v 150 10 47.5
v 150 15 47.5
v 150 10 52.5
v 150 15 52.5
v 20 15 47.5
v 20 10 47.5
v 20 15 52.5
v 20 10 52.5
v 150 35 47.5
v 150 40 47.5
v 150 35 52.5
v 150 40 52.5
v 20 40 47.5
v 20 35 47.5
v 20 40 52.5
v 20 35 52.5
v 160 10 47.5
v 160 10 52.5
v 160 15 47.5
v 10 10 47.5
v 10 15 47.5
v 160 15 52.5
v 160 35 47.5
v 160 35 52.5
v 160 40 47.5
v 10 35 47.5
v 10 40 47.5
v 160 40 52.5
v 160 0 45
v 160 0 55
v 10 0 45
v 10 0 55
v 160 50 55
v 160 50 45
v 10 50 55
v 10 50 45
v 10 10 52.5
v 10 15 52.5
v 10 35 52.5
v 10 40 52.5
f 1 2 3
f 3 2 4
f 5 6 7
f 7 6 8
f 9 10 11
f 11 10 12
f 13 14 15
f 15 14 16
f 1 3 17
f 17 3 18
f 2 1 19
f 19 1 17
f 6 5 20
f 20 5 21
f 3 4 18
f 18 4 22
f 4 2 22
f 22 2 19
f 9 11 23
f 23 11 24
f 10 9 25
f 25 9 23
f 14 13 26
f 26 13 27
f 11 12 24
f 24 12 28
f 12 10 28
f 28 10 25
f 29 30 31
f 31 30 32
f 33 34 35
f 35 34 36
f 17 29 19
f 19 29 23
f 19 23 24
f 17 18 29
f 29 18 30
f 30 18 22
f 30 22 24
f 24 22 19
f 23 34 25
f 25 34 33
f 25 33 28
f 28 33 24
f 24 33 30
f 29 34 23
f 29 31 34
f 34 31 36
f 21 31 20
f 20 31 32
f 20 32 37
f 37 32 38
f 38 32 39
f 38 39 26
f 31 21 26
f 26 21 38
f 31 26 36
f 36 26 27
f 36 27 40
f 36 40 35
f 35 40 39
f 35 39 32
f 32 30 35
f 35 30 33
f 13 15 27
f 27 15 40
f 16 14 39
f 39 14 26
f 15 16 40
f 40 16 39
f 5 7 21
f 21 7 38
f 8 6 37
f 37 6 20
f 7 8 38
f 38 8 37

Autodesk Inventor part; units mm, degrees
ref_plane "YZ Plane" through (0, 0, 0) normal (1, 0, 0) x (0, 1, 0)
ref_plane "XZ Plane" through (0, 0, 0) normal (0, 1, 0) x (-1, 0, 0)
ref_plane "XY Plane" through (0, 0, 0) normal (0, 0, 1) x (1, 0, 0)
sketch "Sketch1" plane through (0, 0, 0) normal (0, 1, 0) x (-1, 0, 0)
  line L0 (-10, -55) -> (-160, -55)
  line L1 (-160, -55) -> (-160, -45)
  line L2 (-160, -45) -> (-10, -45)
  line L3 (-10, -45) -> (-10, -55)
  line L4 (10, -55) -> (80, -55)
  line L5 (80, -55) -> (80, -90)
  line L6 (80, -90) -> (110, -90)
  line L7 (110, -90) -> (110, -10)
  line L8 (110, -10) -> (80, -10)
  line L9 (80, -10) -> (80, -45)
  line L10 (80, -45) -> (10, -45)
  line L11 (10, -45) -> (10, -55)
  line L12 (0, -122.2654) -> (0, -189.4683)
  line L13 (-10, 55) -> (-10, 45)
  line L14 (10, 55) -> (10, 45)
  line L15 (80, 10) -> (110, 10)
  line L16 (10, 45) -> (80, 45)
  line L17 (80, 45) -> (80, 10)
  line L18 (80, 55) -> (10, 55)
  line L19 (80, 90) -> (80, 55)
  line L20 (110, 10) -> (110, 90)
  line L21 (110, 90) -> (80, 90)
  line L22 (-160, 55) -> (-10, 55)
  line L23 (-160, 45) -> (-160, 55)
  line L24 (-10, 45) -> (-160, 45)
  point P0 (0, 0)
  dimension "d0" = 10
  dimension "d1" = 80
  dimension "d2" = 10
  dimension "d4" = 30
  dimension "d5" = 30
  dimension "d6" = 35
  dimension "d7" = 35
  dimension "d8" = 45
  dimension "d9" = 10
  dimension "d10" = 10
  dimension "d11" = 150
  dimension "d12" = 100
  dimension "d13" = 0
  dimension "d16" = 100
extrude "Extrusion1" add sketch "Sketch1" along normal blind 50
sketch "Sketch2" plane through (160, 0, 55) normal (1, 0, 0) x (0, 0, -1)
  line L0 (2.5, 40) -> (7.5, 40)
  line L1 (7.5, 40) -> (7.5, 35)
  line L2 (7.5, 35) -> (2.5, 35)
  line L3 (2.5, 35) -> (2.5, 40)
  line L4 (0, 50) -> (10, 50) projected
  line L5 (10, 0) -> (10, 50) projected
  line L6 (2.5, 15) -> (7.5, 15)
  line L7 (7.5, 15) -> (7.5, 10)
  line L8 (7.5, 10) -> (2.5, 10)
  line L9 (2.5, 10) -> (2.5, 15)
  line L10 (102.5, 40) -> (107.5, 40)
  line L11 (107.5, 40) -> (107.5, 35)
  line L12 (107.5, 35) -> (102.5, 35)
  line L13 (102.5, 35) -> (102.5, 40)
  line L14 (102.5, 15) -> (107.5, 15)
  line L15 (107.5, 15) -> (107.5, 10)
  line L16 (107.5, 10) -> (102.5, 10)
  line L17 (102.5, 10) -> (102.5, 15)
  point P0 (55, 0)
  dimension "d23" = 10
  dimension "d24" = 5
  dimension "d25" = 2.5
  dimension "d26" = 5
  dimension "d29" = 25
  dimension "d32" = 100
extrude "Extrusion2" cut sketch "Sketch2" against normal blind 200
sketch "Sketch3" plane through (0, 50, 0) normal (0, 1, 0) x (1, 0, 0)
  line L0 (-105, -20) -> (-85, -20)
  line L1 (-85, -20) -> (-85, -30)
  line L2 (-85, -30) -> (-105, -30)
  line L3 (-105, -30) -> (-105, -20)
  line L4 (-110, -10) -> (-110, -90) projected
  line L5 (-105, -70) -> (-85, -70)
  line L6 (-85, -70) -> (-85, -80)
  line L7 (-85, -80) -> (-105, -80)
  line L8 (-105, -80) -> (-105, -70)
  line L9 (-105, 80) -> (-85, 80)
  line L10 (-85, 80) -> (-85, 70)
  line L11 (-85, 70) -> (-105, 70)
  line L12 (-105, 70) -> (-105, 80)
  line L13 (-105, 30) -> (-85, 30)
  line L14 (-85, 30) -> (-85, 20)
  line L15 (-85, 20) -> (-105, 20)
  line L16 (-105, 20) -> (-105, 30)
  point P0 (0, 0)
  dimension "d37" = 20
  dimension "d38" = 10
  dimension "d39" = 20
  dimension "d40" = 85
  dimension "d43" = 50
  dimension "d46" = 100
extrude "Extrusion3" add sketch "Sketch3" along normal blind 8
sketch "Sketch4" plane through (0, 0, 0) normal (0, -1, 0) x (1, 0, 0)
  line L0 (-105, -70) -> (-85, -70) projected
  line L1 (-85, -70) -> (-85, -80) projected
  line L2 (-85, -80) -> (-105, -80) projected
  line L3 (-105, -80) -> (-105, -70) projected
  line L4 (-105, -20) -> (-85, -20) projected
  line L5 (-85, -20) -> (-85, -30) projected
  line L6 (-85, -30) -> (-105, -30) projected
  line L7 (-105, -30) -> (-105, -20) projected
  line L8 (-105, 30) -> (-85, 30) projected
  line L9 (-85, 30) -> (-85, 20) projected
  line L10 (-85, 20) -> (-105, 20) projected
  line L11 (-105, 20) -> (-105, 30) projected
  line L12 (-105, 80) -> (-85, 80) projected
  line L13 (-85, 80) -> (-85, 70) projected
  line L14 (-85, 70) -> (-105, 70) projected
  line L15 (-105, 70) -> (-105, 80) projected
  line L16 (-85, 80) -> (-105, 80)
  line L17 (-105, 80) -> (-105, 70)
  line L18 (-105, 70) -> (-85, 70)
  line L19 (-85, 70) -> (-85, 80)
  line L20 (-85, 30) -> (-105, 30)
  line L21 (-105, 30) -> (-105, 20)
  line L22 (-105, 20) -> (-85, 20)
  line L23 (-85, 20) -> (-85, 30)
  line L24 (-85, -20) -> (-105, -20)
  line L25 (-105, -20) -> (-105, -30)
  line L26 (-105, -30) -> (-85, -30)
  line L27 (-85, -30) -> (-85, -20)
  line L28 (-85, -70) -> (-105, -70)
  line L29 (-105, -70) -> (-105, -80)
  line L30 (-105, -80) -> (-85, -80)
  line L31 (-85, -80) -> (-85, -70)
  point P0 (0, 0)
extrude "Extrusion4" cut sketch "Sketch4" against normal blind 10
sketch "Sketch5" plane through (10, 0, 55) normal (0, 0, 1) x (1, 0, 0)
  line L0 (0, 0) -> (0, 50) projected
  line L1 (0, 50) -> (150, 50) projected
  line L2 (150, 0) -> (150, 50) projected
  line L3 (0, 0) -> (150, 0) projected
  line L4 (0, 35) -> (0, 40) projected
  line L5 (150, 35) -> (0, 35) projected
  line L6 (150, 40) -> (150, 35) projected
  line L7 (150, 40) -> (0, 40) projected
  line L8 (0, 10) -> (0, 15) projected
  line L9 (150, 10) -> (0, 10) projected
  line L10 (150, 15) -> (150, 10) projected
  line L11 (150, 15) -> (0, 15) projected
  line L12 (10, 40) -> (140, 40)
  line L13 (140, 40) -> (140, 35)
  line L14 (140, 35) -> (10, 35)
  line L15 (10, 35) -> (10, 40)
  line L16 (10, 15) -> (140, 15)
  line L17 (140, 15) -> (140, 10)
  line L18 (140, 10) -> (10, 10)
  line L19 (10, 10) -> (10, 15)
  point P0 (-10, 0)
  point P1 (10, 10)
  dimension "d53" = 10
  dimension "d54" = 10
  dimension "d55" = 10
  dimension "d56" = 10
extrude "Extrusion5" add sketch "Sketch5" against normal blind 10 contours L19 L11 L17 L9 | L15 L7 L13 L5
sketch "Sketch6" plane through (160, 0, -55) normal (0, 0, -1) x (-1, 0, 0)
  line L0 (150, 40) -> (150, 35) projected
  line L1 (0, 40) -> (150, 40) projected
  line L2 (0, 35) -> (0, 40) projected
  line L3 (0, 35) -> (150, 35) projected
  line L4 (150, 15) -> (150, 10) projected
  line L5 (0, 15) -> (150, 15) projected
  line L6 (0, 10) -> (0, 15) projected
  line L7 (0, 10) -> (150, 10) projected
  line L8 (10, 40) -> (140, 40)
  line L9 (140, 40) -> (140, 35)
  line L10 (140, 35) -> (10, 35)
  line L11 (10, 35) -> (10, 40)
  line L12 (10, 15) -> (140, 15)
  line L13 (140, 15) -> (140, 10)
  line L14 (140, 10) -> (10, 10)
  line L15 (10, 10) -> (10, 15)
  point P0 (160, 0)
  point P1 (140, 37.5)
  point P2 (10, 10)
  dimension "d59" = 10
  dimension "d60" = 10
  dimension "d61" = 10
  dimension "d62" = 10
extrude "Extrusion6" add sketch "Sketch6" against normal blind 10 contours L9 L3 L11 L1 | L13 L7 L15 L5
sketch "Sketch7" plane through (0, 58, 0) normal (0, 1, 0) x (1, 0, 0)
  line L0 (-105, -80) -> (-85, -80) projected
  line L1 (-85, -80) -> (-85, -70) projected
  line L2 (-85, -70) -> (-105, -70) projected
  line L3 (-105, -70) -> (-105, -80) projected
  line L4 (-105, -30) -> (-85, -30) projected
  line L5 (-85, -30) -> (-85, -20) projected
  line L6 (-85, -20) -> (-105, -20) projected
  line L7 (-105, -20) -> (-105, -30) projected
  line L8 (-105, 20) -> (-85, 20) projected
  line L9 (-85, 20) -> (-85, 30) projected
  line L10 (-85, 30) -> (-105, 30) projected
  line L11 (-105, 30) -> (-105, 20) projected
  line L12 (-105, 70) -> (-85, 70) projected
  line L13 (-85, 70) -> (-85, 80) projected
  line L14 (-85, 80) -> (-105, 80) projected
  line L15 (-105, 80) -> (-105, 70) projected
  line L16 (-104, -79) -> (-86, -79)
  line L17 (-86, -79) -> (-86, -71)
  line L18 (-86, -71) -> (-104, -71)
  line L19 (-104, -71) -> (-104, -79)
  line L20 (-86, -21) -> (-104, -21)
  line L21 (-104, -21) -> (-104, -29)
  line L22 (-104, -29) -> (-86, -29)
  line L23 (-86, -29) -> (-86, -21)
  line L24 (-86, 29) -> (-104, 29)
  line L25 (-104, 29) -> (-104, 21)
  line L26 (-104, 21) -> (-86, 21)
  line L27 (-86, 21) -> (-86, 29)
  line L28 (-86, 79) -> (-104, 79)
  line L29 (-104, 79) -> (-104, 71)
  line L30 (-104, 71) -> (-86, 71)
  line L31 (-86, 71) -> (-86, 79)
  line L32 (-105, -80) -> (-85, -80)
  line L33 (-85, -80) -> (-85, -70)
  line L34 (-85, -70) -> (-105, -70)
  line L35 (-105, -70) -> (-105, -80)
  line L36 (-105, -30) -> (-85, -30)
  line L37 (-85, -30) -> (-85, -20)
  line L38 (-85, -20) -> (-105, -20)
  line L39 (-105, -20) -> (-105, -30)
  line L40 (-105, 20) -> (-85, 20)
  line L41 (-85, 20) -> (-85, 30)
  line L42 (-85, 30) -> (-105, 30)
  line L43 (-105, 30) -> (-105, 20)
  line L44 (-105, 70) -> (-85, 70)
  line L45 (-85, 70) -> (-85, 80)
  line L46 (-85, 80) -> (-105, 80)
  line L47 (-105, 80) -> (-105, 70)
  point P0 (0, 0)
  dimension "d65" = 1
  dimension "d66" = 1
  dimension "d67" = 1
  dimension "d68" = 1
  dimension "d71" = 50
  dimension "d74" = 100
extrude "Extrusion7" cut sketch "Sketch7" against normal blind 8
sketch "Sketch8" plane through (-80, 0, 55) normal (0, 0, 1) x (1, 0, 0)
  line L0 (70, 40) -> (70, 35) projected
  line L1 (70, 40) -> (40, 40) projected
  line L2 (40, 40) -> (40, 35) projected
  line L3 (70, 35) -> (40, 35) projected
  line L4 (70, 15) -> (70, 10) projected
  line L5 (70, 15) -> (40, 15) projected
  line L6 (40, 15) -> (40, 10) projected
  line L7 (70, 10) -> (40, 10) projected
  line L8 (40, 40) -> (60, 40)
  line L9 (60, 40) -> (60, 35)
  line L10 (60, 35) -> (40, 35)
  line L11 (40, 35) -> (40, 40)
  line L12 (40, 15) -> (60, 15)
  line L13 (60, 15) -> (60, 10)
  line L14 (60, 10) -> (40, 10)
  line L15 (40, 10) -> (40, 15)
  point P0 (80, 0)
  point P1 (60, 15)
  point P2 (60, 40)
  dimension "d79" = 10
  dimension "d80" = 10
extrude "Extrusion8" add sketch "Sketch8" against normal blind 10 contours L9 L3 L2 L1 | L13 L7 L6 L5
sketch "Sketch9" plane through (-10, 0, -55) normal (0, 0, -1) x (-1, 0, 0)
  line L0 (0, 35) -> (0, 40) projected
  line L1 (0, 35) -> (30, 35) projected
  line L2 (30, 35) -> (30, 40) projected
  line L3 (0, 40) -> (30, 40) projected
  line L4 (0, 10) -> (0, 15) projected
  line L5 (0, 10) -> (30, 10) projected
  line L6 (30, 10) -> (30, 15) projected
  line L7 (0, 15) -> (30, 15) projected
  line L8 (30, 40) -> (10, 40)
  line L9 (10, 40) -> (10, 10)
  line L10 (10, 10) -> (30, 10)
  line L11 (30, 10) -> (30, 40)
  point P0 (-10, 0)
  point P1 (0, 37.5)
  dimension "d83" = 10
extrude "Extrusion9" add sketch "Sketch9" against normal blind 10 contours L9 L3 L2 L1 | L1 L11 L7 L9 | L7 L6 L5 L9
sketch "Sketch10" plane through (0, 58, 0) normal (0, 1, 0) x (1, 0, 0)
  line L0 (0, 0) -> (0, -100)
  line L1 (0, -100) -> (-120, -100)
  line L2 (-120, -100) -> (-120, 100)
  line L3 (-120, 100) -> (180, 100)
  line L4 (180, 100) -> (180, 0)
  line L5 (180, 0) -> (0, 0)
  dimension "d86" = 200
  dimension "d87" = 120
  dimension "d88" = 300
  dimension "d89" = 100
extrude "Extrusion10" cut sketch "Sketch10" against normal through all
properties part number "Hurdle Split"
